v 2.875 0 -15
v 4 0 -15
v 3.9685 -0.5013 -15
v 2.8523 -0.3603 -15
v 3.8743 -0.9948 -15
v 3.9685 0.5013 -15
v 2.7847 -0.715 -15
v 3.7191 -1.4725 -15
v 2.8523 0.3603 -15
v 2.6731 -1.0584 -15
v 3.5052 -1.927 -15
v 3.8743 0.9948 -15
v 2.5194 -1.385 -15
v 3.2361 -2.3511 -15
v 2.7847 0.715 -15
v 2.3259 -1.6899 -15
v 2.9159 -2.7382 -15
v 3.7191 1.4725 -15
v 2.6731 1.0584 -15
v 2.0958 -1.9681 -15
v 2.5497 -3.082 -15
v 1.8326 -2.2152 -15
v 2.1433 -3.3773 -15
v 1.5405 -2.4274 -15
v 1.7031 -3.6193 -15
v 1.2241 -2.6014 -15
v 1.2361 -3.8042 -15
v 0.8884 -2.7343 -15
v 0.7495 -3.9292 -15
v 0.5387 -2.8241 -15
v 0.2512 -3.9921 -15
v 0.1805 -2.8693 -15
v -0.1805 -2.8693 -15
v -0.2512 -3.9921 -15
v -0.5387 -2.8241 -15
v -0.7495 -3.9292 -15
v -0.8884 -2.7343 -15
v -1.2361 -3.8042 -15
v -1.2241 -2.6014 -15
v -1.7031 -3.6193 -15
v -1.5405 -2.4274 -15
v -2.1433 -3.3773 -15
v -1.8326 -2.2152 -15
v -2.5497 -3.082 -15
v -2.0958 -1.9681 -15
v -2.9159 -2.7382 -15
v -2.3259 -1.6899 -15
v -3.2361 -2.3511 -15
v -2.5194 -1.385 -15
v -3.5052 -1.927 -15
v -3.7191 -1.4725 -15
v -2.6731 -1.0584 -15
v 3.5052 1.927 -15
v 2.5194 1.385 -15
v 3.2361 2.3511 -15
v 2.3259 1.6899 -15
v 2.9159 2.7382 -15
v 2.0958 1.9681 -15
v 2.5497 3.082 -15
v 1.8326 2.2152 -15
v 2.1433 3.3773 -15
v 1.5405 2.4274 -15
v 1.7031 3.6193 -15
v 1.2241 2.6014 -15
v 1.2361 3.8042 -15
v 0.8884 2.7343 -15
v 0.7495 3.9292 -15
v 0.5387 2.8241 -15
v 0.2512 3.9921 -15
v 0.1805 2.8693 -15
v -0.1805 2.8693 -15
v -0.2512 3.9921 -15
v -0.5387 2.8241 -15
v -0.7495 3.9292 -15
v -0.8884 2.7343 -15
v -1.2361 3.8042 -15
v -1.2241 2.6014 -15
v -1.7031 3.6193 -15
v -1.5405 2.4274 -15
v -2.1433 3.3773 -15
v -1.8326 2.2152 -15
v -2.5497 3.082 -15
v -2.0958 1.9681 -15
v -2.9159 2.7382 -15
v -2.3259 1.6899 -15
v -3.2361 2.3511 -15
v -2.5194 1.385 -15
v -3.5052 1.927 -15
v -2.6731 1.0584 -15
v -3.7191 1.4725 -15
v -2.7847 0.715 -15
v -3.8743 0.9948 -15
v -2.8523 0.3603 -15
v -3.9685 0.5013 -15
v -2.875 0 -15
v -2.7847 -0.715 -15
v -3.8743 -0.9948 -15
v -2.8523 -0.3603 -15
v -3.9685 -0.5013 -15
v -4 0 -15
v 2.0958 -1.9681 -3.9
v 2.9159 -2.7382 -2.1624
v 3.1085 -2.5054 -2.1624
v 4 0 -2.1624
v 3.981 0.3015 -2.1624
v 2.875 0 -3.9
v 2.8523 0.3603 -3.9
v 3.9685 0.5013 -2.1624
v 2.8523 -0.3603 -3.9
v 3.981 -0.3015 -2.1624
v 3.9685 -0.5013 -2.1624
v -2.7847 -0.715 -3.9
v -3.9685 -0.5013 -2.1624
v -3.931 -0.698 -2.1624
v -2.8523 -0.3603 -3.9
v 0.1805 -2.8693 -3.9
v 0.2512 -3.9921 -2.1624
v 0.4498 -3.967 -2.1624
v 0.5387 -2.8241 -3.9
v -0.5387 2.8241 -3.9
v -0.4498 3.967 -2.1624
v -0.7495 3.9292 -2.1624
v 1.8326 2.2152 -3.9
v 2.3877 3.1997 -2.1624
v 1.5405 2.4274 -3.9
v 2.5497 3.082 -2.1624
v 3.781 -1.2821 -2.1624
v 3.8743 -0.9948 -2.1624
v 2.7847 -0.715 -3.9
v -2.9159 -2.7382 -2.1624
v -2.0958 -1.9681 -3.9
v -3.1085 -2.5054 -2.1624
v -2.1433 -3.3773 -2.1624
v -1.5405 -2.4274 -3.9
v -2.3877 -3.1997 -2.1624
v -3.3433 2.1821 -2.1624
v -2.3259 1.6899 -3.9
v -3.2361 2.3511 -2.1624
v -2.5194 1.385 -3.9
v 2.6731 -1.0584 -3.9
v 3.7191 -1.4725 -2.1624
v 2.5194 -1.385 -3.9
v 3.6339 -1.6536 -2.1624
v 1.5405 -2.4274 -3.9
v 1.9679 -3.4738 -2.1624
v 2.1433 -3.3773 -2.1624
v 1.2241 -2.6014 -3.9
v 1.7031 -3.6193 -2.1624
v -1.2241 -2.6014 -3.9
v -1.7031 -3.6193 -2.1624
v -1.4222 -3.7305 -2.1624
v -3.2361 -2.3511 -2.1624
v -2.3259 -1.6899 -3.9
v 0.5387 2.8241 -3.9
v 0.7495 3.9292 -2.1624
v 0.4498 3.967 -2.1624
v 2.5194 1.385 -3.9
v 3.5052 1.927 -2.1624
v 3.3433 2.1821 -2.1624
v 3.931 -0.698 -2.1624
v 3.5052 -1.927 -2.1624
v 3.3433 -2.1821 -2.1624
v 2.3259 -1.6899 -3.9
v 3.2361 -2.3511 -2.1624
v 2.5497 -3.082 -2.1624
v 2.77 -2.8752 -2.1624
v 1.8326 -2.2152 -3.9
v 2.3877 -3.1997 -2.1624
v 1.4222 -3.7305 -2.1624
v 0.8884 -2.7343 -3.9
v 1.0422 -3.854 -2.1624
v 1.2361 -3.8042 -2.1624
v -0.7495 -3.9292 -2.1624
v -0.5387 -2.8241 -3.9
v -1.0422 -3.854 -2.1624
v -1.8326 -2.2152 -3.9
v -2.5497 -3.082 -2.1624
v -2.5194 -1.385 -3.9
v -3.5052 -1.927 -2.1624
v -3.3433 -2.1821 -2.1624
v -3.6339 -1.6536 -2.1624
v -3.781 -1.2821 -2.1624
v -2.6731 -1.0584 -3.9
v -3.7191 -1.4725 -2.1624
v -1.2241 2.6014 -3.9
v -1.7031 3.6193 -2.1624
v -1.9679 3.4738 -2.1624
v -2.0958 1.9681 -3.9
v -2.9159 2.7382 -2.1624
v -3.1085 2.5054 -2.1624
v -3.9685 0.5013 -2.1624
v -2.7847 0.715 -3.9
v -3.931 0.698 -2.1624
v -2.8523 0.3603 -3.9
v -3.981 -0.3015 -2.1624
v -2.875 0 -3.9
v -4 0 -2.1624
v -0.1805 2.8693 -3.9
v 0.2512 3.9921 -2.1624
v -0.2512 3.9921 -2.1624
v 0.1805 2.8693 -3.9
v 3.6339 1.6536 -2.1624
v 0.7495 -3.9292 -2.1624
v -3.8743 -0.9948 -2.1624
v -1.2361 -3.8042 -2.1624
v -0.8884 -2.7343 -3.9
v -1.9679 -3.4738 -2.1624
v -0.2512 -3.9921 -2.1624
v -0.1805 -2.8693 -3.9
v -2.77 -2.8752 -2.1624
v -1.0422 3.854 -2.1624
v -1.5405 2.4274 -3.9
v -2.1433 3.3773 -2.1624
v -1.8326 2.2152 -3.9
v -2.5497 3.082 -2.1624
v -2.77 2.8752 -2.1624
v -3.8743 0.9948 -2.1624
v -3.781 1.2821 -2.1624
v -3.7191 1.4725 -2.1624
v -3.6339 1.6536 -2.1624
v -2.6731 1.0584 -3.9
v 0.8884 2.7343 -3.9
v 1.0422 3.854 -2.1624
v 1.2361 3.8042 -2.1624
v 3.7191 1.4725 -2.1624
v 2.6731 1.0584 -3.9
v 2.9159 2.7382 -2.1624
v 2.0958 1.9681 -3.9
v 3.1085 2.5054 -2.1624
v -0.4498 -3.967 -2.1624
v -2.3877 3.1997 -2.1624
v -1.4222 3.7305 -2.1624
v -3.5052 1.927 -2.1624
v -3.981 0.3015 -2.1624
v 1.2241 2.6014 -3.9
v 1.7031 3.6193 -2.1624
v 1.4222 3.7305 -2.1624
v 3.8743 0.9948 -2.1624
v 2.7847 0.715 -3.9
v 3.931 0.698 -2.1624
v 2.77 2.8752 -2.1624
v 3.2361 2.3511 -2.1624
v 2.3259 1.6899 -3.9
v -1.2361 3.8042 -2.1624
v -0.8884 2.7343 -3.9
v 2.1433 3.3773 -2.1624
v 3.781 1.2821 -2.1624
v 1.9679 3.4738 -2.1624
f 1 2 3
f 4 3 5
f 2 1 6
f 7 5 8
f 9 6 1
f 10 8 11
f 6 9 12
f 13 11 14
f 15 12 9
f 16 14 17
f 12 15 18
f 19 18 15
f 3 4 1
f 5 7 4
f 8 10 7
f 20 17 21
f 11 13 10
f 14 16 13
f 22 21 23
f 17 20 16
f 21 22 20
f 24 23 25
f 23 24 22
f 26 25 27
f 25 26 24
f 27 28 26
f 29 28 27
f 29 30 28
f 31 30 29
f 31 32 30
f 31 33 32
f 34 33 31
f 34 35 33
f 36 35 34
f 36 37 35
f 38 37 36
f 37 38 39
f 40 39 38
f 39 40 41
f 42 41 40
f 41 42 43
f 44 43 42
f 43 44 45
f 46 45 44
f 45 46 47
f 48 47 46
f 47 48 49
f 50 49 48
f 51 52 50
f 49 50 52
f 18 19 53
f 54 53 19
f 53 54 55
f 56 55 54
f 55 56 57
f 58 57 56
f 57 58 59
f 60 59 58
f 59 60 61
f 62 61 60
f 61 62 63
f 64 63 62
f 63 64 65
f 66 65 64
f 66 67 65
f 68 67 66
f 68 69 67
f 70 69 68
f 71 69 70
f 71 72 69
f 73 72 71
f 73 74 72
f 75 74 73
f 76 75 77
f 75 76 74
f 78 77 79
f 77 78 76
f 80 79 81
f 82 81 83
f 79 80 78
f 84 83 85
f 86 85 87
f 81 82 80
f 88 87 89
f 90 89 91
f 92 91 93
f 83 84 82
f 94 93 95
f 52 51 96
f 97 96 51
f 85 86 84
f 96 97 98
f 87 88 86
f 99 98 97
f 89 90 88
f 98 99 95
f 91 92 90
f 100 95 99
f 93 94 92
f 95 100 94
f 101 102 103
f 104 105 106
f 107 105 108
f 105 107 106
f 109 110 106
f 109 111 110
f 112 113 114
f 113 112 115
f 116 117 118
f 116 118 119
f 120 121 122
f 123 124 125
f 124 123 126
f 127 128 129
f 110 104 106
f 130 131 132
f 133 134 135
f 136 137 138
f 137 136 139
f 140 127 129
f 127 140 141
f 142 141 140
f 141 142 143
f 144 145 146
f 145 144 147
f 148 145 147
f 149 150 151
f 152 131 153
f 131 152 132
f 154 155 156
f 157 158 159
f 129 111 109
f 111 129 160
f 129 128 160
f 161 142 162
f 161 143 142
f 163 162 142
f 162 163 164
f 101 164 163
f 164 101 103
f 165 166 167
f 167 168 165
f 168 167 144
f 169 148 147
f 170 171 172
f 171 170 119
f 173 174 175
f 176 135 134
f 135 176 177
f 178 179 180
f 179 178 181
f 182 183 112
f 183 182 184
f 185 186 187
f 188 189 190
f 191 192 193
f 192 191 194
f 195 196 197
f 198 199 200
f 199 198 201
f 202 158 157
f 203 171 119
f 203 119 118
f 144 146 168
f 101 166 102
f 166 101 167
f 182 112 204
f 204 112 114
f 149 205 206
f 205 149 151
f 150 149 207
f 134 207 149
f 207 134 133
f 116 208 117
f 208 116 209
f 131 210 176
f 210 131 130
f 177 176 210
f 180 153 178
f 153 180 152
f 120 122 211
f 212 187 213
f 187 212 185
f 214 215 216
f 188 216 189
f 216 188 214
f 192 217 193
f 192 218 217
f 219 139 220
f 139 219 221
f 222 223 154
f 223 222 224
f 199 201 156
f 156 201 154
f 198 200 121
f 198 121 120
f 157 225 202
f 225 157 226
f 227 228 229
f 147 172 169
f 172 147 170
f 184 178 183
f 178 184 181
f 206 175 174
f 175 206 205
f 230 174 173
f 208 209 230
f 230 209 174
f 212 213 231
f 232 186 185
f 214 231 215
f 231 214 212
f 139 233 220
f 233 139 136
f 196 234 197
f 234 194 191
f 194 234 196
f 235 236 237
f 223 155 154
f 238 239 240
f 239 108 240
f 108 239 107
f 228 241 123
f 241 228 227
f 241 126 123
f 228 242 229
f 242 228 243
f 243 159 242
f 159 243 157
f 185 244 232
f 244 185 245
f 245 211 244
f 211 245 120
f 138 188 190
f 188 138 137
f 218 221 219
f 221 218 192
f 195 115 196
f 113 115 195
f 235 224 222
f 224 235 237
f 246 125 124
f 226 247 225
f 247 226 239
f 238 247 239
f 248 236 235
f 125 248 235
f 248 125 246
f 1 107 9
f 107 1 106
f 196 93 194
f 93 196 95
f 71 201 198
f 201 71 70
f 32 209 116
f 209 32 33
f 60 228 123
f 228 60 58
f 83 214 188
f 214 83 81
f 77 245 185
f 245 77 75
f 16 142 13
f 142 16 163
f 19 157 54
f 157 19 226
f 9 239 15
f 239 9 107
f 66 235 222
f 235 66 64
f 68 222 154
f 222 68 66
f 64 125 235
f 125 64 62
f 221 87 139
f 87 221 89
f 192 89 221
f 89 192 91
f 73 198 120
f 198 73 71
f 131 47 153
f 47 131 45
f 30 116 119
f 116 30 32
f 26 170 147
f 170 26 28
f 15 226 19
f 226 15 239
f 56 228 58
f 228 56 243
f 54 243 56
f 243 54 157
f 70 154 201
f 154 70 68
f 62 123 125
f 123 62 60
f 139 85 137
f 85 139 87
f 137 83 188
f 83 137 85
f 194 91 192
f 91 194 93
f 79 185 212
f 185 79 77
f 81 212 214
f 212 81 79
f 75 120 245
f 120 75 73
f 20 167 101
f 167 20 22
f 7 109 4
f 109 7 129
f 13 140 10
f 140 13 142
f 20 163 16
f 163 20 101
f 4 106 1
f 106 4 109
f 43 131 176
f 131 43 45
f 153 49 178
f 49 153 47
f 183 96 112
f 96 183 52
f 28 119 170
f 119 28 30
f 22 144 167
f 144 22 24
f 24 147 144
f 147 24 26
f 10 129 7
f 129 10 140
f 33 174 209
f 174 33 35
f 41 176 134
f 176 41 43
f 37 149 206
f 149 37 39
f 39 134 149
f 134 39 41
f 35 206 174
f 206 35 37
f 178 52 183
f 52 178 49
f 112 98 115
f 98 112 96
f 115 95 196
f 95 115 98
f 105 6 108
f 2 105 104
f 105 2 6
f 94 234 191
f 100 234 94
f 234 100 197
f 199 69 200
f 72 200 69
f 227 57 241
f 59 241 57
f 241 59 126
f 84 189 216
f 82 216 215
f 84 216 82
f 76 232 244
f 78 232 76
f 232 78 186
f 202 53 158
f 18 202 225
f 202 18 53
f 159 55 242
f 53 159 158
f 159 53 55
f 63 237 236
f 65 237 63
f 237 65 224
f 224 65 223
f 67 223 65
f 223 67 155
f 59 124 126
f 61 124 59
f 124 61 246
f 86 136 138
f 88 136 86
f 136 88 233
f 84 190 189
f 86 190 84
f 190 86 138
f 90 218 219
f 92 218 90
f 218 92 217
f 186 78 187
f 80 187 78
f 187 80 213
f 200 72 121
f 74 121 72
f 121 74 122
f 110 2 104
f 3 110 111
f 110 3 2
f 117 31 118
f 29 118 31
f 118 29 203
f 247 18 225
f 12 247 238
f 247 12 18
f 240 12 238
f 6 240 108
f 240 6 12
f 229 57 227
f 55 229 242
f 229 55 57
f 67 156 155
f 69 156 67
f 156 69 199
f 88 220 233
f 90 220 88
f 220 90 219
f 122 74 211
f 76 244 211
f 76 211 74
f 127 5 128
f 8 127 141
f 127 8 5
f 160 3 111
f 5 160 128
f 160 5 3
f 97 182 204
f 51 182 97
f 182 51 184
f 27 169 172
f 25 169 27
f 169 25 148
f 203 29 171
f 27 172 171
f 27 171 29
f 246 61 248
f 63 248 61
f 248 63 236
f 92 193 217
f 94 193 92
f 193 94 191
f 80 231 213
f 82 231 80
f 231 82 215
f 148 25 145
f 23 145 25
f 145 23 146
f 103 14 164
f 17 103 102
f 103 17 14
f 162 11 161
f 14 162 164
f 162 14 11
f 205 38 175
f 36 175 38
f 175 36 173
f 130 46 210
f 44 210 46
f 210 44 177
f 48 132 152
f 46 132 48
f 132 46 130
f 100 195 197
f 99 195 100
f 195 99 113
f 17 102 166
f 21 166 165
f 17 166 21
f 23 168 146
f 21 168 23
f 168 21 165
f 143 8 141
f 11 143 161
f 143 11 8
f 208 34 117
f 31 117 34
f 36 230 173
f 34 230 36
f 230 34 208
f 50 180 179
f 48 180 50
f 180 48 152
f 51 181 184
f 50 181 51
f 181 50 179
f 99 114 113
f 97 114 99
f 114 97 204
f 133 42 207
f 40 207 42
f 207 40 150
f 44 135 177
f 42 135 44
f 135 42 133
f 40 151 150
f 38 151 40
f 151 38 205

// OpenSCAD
$fn = 50;


difference() {
	union() {
		translate(v = [0, 0, -15.0000000000]) {
			cylinder(h = 15, r = 4.0000000000);
		}
		cylinder(h = 0, r = 7.0000000000);
	}
	union() {
		translate(v = [0, 0, 0]) {
			rotate(a = [0, 0, 0]) {
				difference() {
					union() {
						#translate(v = [0, 0, -15.0000000000]) {
							cylinder(h = 15, r = 2.6000000000);
						}
						#translate(v = [0, 0, -3.9000000000]) {
							cylinder(h = 3.9000000000, r1 = 2.8750000000, r2 = 5.4000000000);
						}
						#translate(v = [0, 0, -15.0000000000]) {
							cylinder(h = 15, r = 2.8750000000);
						}
						#translate(v = [0, 0, -15.0000000000]) {
							cylinder(h = 15, r = 2.6000000000);
						}
					}
					union();
				}
			}
		}
	}
}
